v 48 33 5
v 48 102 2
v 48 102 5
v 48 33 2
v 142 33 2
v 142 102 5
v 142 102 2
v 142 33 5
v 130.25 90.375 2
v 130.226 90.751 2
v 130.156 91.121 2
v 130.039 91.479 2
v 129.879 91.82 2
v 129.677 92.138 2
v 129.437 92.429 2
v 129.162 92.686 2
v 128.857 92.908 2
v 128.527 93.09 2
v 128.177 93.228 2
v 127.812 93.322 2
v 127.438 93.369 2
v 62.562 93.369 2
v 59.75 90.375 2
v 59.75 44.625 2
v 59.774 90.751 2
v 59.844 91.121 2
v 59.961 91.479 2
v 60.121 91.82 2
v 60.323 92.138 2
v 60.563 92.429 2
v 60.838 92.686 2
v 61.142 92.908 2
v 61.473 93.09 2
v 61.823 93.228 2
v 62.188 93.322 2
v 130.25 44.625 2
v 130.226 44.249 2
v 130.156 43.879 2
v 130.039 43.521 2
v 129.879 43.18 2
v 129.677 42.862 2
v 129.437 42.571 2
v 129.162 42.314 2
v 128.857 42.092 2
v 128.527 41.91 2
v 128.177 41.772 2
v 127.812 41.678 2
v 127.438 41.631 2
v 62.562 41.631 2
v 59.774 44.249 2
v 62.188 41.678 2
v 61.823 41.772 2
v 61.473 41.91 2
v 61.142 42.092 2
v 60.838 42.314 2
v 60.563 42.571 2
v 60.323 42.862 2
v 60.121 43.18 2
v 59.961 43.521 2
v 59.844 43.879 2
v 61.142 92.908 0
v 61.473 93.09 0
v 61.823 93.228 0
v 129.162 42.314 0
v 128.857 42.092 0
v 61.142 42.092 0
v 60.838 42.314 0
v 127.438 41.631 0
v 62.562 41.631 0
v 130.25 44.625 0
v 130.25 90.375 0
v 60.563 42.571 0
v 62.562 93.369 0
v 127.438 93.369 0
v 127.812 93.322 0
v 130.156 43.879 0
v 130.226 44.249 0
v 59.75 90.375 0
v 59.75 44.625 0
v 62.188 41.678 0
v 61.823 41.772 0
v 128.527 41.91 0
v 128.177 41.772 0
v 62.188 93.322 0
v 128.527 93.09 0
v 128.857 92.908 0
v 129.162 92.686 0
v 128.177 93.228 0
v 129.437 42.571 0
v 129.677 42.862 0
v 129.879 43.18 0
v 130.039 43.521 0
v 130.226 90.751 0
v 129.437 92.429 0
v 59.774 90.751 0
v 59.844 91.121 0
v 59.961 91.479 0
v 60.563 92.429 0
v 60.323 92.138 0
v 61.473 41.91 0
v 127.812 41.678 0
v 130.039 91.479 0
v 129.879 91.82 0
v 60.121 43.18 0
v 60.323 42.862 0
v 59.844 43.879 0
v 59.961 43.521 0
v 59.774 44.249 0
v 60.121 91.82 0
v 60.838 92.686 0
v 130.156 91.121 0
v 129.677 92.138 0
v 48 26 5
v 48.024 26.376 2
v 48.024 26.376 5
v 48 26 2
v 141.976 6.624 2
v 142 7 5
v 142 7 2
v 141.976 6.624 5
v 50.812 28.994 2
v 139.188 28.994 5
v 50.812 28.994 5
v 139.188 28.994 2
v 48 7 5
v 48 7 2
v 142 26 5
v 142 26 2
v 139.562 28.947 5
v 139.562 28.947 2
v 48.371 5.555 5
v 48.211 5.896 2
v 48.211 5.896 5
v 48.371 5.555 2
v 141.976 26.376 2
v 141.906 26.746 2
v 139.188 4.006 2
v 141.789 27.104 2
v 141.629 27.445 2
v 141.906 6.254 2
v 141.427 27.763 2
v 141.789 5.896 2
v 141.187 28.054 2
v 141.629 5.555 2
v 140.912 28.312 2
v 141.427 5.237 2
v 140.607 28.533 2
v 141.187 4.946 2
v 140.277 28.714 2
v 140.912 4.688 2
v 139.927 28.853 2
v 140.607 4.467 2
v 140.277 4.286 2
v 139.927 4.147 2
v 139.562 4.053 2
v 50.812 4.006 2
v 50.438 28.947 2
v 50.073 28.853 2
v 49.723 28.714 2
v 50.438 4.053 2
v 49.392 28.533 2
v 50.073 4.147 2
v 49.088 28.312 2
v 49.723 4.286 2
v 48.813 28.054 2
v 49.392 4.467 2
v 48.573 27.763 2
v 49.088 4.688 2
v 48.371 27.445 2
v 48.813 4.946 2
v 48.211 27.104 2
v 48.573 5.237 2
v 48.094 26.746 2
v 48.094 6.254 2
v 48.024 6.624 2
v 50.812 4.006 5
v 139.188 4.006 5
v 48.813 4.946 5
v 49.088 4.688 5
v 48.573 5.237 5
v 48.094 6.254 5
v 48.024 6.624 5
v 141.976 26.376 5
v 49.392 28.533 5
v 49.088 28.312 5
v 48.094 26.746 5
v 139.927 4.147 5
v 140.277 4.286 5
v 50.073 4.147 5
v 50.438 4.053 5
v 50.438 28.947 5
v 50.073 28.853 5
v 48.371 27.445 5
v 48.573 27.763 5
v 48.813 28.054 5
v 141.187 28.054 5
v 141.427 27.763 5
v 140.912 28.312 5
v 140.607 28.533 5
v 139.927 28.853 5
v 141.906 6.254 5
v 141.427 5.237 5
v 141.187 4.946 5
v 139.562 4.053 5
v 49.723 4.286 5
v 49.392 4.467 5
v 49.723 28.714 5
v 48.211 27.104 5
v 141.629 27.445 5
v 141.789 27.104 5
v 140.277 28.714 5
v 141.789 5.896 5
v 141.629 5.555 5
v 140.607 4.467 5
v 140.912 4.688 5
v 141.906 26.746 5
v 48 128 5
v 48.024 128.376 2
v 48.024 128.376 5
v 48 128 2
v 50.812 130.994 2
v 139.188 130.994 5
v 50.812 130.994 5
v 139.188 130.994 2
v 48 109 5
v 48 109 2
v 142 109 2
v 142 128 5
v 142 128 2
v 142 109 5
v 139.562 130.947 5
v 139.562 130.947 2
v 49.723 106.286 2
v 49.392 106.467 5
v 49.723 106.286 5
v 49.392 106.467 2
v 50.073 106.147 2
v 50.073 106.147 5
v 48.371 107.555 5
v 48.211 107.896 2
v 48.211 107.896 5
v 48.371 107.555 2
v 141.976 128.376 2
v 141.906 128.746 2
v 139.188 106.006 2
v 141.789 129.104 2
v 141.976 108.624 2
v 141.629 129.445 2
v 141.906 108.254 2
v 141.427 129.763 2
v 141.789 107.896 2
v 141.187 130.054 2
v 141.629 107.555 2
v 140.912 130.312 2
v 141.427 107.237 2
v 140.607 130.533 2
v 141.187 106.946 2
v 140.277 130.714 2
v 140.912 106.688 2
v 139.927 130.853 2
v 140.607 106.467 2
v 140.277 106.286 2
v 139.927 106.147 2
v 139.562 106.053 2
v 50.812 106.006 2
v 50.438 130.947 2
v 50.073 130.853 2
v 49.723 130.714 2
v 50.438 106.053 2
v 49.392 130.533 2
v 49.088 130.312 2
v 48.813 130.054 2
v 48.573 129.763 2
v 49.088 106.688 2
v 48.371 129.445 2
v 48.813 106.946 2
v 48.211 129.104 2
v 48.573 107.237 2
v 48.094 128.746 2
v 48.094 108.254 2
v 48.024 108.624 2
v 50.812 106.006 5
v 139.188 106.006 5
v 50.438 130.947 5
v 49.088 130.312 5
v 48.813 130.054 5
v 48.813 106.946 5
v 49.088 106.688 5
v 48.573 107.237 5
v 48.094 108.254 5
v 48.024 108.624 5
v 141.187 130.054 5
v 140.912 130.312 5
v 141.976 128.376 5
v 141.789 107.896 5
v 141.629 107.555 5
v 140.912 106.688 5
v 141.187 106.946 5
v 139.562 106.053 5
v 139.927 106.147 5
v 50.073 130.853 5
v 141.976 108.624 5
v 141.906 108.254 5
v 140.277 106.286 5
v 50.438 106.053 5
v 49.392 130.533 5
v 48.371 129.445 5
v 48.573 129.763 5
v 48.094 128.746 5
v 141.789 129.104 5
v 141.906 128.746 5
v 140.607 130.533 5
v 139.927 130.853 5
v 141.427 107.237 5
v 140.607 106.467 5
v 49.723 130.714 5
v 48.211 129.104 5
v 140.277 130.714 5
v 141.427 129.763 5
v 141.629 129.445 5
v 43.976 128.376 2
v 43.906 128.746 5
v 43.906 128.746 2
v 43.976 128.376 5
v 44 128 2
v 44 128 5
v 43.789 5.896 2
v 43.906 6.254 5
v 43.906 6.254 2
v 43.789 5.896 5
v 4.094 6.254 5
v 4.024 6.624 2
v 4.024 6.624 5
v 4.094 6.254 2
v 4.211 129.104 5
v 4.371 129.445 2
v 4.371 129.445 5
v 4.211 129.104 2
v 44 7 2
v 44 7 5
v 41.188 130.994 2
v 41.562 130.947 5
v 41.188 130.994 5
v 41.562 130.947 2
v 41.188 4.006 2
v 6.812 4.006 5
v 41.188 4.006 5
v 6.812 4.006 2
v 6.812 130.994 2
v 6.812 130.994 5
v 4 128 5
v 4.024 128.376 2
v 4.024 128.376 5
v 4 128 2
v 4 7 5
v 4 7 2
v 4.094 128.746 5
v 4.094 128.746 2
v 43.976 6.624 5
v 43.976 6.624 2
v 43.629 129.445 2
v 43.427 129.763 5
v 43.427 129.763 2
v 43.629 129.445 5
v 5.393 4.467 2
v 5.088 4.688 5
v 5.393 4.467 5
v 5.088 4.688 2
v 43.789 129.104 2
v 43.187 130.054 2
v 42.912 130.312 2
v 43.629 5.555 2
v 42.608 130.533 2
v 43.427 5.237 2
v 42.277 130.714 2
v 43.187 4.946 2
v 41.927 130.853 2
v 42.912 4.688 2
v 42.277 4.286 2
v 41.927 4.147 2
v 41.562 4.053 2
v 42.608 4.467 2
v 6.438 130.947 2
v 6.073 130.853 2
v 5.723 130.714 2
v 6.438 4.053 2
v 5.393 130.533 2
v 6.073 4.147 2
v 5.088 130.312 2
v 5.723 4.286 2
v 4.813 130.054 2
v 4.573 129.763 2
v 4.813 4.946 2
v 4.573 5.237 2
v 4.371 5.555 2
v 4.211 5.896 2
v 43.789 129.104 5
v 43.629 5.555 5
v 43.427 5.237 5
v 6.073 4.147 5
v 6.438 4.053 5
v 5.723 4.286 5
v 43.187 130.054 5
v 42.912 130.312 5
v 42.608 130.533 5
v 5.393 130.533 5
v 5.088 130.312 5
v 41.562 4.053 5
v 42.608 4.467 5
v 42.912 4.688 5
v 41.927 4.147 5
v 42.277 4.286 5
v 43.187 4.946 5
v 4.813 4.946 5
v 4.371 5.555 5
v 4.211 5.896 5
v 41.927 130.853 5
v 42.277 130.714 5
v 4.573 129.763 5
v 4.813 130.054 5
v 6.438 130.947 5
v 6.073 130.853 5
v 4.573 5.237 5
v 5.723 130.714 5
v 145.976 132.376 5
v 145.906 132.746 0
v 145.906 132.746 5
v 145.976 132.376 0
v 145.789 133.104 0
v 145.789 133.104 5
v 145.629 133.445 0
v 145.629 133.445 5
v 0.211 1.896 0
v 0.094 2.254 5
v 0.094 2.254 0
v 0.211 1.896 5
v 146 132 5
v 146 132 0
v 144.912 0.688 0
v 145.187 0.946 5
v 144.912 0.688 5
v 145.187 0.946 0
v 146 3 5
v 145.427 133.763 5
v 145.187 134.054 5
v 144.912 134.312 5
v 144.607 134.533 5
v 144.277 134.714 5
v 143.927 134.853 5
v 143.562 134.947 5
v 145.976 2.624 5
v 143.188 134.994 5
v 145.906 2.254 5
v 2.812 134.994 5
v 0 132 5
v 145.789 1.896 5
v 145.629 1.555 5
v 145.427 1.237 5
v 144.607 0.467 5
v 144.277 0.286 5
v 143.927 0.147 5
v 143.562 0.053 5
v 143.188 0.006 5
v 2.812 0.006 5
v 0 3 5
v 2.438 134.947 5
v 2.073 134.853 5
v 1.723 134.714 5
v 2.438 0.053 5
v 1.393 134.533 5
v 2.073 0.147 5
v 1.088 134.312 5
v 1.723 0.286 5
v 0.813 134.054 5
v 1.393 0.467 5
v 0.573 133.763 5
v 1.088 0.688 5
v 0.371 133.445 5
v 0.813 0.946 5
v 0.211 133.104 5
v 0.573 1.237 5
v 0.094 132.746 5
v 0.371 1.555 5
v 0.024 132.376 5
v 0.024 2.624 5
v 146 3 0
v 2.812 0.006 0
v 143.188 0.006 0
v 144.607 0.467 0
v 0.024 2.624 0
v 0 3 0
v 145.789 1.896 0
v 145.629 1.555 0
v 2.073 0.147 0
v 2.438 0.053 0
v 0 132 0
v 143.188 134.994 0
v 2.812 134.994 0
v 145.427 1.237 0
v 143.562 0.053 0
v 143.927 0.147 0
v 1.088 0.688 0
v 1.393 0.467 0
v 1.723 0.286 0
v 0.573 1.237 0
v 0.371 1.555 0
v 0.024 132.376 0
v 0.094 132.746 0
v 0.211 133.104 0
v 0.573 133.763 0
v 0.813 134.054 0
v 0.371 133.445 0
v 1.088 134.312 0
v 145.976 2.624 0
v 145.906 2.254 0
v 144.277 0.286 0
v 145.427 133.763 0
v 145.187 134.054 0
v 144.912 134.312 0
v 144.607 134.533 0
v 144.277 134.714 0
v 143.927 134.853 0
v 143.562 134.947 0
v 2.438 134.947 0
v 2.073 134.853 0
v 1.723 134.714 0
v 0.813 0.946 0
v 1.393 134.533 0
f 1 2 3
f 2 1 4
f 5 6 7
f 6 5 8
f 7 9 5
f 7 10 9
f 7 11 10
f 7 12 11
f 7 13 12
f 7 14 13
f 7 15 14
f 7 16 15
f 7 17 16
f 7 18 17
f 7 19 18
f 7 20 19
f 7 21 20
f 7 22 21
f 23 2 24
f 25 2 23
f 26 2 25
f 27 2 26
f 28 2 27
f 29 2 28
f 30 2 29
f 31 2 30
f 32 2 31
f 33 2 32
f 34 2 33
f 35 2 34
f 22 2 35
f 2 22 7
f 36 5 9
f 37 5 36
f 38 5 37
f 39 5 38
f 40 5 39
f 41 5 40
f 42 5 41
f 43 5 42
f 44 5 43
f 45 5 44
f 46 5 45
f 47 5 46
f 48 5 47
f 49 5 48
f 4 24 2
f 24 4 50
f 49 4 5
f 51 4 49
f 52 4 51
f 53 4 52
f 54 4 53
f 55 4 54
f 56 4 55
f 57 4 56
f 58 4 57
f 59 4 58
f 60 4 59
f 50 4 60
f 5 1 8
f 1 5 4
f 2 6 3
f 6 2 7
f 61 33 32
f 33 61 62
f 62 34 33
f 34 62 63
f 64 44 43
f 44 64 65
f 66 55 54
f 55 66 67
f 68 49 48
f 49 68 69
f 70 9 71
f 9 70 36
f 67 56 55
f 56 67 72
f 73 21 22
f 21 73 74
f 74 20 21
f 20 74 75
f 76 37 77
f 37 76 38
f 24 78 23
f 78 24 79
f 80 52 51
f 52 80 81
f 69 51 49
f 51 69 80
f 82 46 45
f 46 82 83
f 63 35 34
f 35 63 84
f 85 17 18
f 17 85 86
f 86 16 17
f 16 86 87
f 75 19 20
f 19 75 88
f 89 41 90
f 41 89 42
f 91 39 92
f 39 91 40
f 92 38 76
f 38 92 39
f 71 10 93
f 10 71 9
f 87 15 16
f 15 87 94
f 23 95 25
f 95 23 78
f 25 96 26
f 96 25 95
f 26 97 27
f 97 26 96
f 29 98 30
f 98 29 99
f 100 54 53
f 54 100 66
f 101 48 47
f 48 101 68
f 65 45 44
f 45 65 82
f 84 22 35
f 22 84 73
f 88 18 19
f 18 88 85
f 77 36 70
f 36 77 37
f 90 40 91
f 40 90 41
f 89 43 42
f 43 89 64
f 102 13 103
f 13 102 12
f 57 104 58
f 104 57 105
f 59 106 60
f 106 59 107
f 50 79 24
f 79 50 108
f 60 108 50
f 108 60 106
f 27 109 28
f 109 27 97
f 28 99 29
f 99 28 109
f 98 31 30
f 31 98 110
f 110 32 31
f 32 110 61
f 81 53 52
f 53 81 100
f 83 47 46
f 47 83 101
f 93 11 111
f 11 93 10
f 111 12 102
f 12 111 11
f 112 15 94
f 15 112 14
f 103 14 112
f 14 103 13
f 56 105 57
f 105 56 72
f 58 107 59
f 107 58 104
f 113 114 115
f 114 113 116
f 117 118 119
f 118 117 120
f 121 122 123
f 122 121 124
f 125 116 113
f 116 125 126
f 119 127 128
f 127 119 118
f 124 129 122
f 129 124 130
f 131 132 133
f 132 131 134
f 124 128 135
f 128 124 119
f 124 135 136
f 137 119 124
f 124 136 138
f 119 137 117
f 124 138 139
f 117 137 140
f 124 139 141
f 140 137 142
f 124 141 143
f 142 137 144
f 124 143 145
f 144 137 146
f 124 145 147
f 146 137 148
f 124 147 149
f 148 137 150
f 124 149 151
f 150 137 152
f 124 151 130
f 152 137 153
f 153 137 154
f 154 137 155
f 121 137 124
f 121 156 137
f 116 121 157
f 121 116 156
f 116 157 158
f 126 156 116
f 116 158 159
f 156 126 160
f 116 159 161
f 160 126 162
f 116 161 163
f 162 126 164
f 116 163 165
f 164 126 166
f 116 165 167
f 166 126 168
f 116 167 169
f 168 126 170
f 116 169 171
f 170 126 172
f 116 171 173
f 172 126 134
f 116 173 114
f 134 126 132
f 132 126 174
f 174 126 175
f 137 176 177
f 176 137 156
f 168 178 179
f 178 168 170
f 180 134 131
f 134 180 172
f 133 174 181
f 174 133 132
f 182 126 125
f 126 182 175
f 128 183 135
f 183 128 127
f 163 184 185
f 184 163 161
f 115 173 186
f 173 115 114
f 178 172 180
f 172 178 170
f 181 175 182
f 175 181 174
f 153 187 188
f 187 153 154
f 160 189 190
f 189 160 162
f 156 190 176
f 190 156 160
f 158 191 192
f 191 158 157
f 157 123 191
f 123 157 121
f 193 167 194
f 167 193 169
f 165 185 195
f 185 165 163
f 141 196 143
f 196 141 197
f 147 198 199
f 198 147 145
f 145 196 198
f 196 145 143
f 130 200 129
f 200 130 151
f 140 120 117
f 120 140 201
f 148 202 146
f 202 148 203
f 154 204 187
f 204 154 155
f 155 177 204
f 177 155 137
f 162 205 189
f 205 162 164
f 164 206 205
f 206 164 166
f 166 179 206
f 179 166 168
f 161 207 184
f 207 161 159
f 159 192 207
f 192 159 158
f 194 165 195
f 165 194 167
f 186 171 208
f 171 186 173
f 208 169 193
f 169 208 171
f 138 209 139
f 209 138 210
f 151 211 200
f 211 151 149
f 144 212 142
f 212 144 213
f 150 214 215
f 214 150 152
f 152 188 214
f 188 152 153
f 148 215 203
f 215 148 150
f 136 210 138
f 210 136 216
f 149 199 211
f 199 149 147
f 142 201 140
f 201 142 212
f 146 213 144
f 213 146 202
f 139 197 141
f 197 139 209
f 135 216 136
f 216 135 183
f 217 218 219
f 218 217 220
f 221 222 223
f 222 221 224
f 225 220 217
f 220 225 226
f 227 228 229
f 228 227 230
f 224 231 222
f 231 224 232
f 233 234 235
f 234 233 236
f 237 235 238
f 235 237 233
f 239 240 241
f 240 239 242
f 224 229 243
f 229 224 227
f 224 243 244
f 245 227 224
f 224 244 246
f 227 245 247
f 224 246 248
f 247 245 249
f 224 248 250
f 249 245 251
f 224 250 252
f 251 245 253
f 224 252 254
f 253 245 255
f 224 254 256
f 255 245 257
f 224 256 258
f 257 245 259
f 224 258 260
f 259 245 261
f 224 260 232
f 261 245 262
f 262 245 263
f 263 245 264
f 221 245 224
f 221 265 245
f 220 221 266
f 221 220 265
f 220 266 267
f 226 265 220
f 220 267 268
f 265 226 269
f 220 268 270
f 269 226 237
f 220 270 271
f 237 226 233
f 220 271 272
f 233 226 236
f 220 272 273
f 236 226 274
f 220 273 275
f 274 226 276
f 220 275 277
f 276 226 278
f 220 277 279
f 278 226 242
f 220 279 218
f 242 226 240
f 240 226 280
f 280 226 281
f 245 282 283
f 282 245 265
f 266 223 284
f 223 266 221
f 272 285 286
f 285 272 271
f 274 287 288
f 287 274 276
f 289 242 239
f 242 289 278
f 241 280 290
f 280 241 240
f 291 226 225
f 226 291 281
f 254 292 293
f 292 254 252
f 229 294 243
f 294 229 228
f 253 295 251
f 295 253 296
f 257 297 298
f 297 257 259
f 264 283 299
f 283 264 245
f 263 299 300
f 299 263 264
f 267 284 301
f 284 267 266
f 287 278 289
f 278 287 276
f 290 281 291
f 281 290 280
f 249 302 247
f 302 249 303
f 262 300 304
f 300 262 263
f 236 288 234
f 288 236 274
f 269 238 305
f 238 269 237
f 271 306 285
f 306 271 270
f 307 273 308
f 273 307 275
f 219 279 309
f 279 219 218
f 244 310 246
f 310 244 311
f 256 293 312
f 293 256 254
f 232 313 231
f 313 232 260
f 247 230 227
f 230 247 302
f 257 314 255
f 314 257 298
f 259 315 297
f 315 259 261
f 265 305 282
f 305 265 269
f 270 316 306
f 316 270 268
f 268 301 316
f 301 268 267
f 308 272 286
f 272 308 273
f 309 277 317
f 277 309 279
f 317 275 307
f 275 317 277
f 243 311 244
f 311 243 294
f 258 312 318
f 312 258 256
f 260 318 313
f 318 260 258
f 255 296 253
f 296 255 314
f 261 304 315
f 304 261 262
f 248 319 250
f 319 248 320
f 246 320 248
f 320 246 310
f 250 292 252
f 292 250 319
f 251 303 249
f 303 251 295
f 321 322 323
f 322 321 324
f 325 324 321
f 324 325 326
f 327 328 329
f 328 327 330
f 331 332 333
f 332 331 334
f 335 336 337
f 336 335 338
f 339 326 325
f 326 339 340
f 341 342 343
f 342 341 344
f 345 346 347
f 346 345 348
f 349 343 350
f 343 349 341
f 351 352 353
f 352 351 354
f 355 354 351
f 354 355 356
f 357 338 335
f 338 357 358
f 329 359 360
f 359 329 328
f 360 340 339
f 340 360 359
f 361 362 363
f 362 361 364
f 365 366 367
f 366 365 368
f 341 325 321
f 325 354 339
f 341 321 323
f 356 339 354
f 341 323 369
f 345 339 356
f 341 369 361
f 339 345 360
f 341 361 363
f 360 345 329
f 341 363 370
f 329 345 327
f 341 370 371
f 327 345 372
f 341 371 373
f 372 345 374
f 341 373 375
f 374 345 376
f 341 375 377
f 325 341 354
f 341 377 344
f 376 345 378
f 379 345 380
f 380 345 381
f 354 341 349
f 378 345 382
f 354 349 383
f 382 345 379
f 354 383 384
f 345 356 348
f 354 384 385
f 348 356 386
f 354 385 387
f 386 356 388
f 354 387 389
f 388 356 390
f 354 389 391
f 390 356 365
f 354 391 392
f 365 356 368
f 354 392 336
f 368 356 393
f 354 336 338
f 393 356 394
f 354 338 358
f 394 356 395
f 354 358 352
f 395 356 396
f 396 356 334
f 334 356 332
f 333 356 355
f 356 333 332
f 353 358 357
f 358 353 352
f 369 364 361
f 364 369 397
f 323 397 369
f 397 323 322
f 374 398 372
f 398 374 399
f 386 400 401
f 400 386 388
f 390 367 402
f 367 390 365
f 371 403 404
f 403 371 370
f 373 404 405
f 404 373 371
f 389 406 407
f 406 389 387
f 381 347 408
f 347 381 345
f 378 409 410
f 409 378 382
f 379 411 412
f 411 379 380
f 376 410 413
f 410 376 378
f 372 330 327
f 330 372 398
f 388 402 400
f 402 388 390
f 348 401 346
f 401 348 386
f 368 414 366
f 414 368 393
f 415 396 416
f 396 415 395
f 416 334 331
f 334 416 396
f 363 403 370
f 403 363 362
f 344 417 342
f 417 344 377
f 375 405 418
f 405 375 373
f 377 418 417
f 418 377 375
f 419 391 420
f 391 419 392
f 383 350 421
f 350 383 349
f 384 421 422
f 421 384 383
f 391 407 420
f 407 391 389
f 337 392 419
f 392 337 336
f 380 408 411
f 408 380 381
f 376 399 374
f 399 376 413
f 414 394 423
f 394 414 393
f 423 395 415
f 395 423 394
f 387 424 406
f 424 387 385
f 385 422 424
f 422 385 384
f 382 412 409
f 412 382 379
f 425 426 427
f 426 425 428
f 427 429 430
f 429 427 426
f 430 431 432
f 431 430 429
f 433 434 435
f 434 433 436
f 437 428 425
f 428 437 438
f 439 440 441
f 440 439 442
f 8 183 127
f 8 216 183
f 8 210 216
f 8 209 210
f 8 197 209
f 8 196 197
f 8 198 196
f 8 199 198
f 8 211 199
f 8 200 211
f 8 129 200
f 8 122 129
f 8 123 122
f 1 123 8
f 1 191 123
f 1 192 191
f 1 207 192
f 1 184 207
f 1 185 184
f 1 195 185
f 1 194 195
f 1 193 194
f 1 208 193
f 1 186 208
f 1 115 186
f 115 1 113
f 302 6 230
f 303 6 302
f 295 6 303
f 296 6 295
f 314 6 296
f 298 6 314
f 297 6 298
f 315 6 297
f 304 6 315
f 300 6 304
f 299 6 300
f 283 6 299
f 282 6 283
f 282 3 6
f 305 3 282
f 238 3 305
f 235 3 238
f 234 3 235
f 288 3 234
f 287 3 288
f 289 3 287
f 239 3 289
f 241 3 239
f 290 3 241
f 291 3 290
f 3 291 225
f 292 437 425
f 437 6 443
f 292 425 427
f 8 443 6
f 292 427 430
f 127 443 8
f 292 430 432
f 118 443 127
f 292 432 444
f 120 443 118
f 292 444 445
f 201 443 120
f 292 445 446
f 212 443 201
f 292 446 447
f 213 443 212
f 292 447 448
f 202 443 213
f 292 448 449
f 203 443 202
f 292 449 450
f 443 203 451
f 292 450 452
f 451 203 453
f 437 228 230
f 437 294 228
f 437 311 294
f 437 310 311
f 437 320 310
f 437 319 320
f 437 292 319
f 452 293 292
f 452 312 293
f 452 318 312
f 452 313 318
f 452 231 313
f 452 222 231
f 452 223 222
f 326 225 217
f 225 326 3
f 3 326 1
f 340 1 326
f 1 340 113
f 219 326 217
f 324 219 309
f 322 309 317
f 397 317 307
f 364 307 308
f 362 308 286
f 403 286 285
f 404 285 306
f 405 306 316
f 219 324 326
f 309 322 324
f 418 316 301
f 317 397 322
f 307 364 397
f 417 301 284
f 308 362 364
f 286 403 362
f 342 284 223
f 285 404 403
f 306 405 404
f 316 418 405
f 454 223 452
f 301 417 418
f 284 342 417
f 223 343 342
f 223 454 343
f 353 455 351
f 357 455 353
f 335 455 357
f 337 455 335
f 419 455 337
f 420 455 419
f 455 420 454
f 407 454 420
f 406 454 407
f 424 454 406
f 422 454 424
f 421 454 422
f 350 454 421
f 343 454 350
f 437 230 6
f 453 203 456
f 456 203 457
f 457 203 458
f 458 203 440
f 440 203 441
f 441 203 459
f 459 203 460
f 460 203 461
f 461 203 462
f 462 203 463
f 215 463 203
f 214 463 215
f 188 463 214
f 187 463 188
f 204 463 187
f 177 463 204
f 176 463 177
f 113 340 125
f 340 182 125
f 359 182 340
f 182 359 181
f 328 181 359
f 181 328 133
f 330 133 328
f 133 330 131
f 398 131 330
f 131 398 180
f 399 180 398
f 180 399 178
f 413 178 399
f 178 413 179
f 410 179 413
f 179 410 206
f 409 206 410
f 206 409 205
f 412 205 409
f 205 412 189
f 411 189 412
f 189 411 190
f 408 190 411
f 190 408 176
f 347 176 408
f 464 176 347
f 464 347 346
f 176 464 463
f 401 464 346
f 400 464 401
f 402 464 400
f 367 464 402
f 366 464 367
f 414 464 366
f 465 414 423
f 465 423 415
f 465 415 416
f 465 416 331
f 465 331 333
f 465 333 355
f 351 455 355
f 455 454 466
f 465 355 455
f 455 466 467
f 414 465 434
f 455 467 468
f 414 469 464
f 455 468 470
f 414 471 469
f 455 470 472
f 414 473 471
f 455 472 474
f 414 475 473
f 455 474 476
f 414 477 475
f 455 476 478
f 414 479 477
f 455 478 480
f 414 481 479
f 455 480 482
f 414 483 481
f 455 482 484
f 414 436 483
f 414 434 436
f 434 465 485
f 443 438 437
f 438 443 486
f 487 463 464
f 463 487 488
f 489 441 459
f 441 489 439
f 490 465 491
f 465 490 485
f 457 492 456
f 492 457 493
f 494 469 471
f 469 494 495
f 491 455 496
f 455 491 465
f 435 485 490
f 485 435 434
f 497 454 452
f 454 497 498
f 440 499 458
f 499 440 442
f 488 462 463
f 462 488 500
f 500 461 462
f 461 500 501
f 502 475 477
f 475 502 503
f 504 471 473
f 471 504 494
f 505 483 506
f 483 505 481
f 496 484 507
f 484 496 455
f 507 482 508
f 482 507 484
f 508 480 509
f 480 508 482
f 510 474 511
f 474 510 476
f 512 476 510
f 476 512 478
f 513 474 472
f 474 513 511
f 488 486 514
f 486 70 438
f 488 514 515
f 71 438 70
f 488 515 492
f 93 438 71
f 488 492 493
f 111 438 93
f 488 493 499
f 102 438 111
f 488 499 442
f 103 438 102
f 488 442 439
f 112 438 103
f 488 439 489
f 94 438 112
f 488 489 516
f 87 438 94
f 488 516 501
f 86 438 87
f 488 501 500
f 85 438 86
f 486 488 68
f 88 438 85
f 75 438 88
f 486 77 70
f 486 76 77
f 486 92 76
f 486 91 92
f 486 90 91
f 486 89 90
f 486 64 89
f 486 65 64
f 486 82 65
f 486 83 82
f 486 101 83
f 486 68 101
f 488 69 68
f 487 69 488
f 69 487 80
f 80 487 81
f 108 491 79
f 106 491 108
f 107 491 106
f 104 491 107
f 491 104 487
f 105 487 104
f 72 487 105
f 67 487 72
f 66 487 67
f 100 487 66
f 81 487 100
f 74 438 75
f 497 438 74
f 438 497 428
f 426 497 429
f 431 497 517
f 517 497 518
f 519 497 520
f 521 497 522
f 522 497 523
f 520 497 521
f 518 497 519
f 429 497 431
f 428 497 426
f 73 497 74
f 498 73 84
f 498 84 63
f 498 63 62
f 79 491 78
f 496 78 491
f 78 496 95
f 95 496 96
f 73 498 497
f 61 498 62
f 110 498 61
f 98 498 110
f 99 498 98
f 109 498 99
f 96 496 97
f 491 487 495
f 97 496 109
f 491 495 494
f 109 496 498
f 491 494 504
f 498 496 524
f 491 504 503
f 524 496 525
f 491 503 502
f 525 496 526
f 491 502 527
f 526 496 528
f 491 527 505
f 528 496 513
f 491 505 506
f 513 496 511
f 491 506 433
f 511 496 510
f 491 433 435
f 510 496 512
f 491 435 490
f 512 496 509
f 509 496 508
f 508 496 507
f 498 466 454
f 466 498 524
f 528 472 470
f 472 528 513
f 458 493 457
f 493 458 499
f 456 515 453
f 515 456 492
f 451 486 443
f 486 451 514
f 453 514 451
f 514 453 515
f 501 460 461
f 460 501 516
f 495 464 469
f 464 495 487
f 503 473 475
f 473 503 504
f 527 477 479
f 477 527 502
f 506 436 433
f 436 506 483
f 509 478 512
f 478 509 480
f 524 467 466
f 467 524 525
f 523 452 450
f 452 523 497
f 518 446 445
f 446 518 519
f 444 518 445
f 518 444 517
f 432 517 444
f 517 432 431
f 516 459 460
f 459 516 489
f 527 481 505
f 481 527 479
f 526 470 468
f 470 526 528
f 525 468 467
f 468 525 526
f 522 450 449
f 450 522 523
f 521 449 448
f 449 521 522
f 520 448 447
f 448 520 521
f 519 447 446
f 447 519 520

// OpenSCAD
// file: ../../lib/flat_rounded_cube.scad
$bleed = 1;
$rounding = 3;

min_cylinder_height = 1;

module flat_rounded_cube(size) {
  width = size[0] - $rounding * 2;
  length = size[1] - $rounding * 2;

  // Only 1 count of min_cynlinder_height not 2;
  // cylinder does not extend the bottom because it's flush
  height = size[2] - min_cylinder_height; 

  minkowski() {
    translate([$rounding, $rounding, 0]) {
      cube([width, length, height]);
    }
    cylinder(min_cylinder_height, $rounding, $rounding);
  }
}
// main file
echo(version=version());

include <../../lib/flat_rounded_cube.scad>

// Config
$wall_thickness = 4;
$bleed = 1;
$fn = 50;
floor_height = 2;
cutout_depth = 3;

// Attributes
card_width = 92;
card_length = 67;
card_gap = 1;

resource_width = 40;

health_height = 25;

// Derived Attributes
height = floor_height + cutout_depth;

player_cutout_size = [
  card_width + card_gap*2,
  card_length + card_gap*2,
  cutout_depth + $bleed
];

resource_cutout_size = [
  resource_width,
  player_cutout_size[1] + health_height*2 + $wall_thickness*2,
  cutout_depth + $bleed
];

health_cutout_size = [
  player_cutout_size[0],
  health_height,
  cutout_depth + $bleed
];

dashboard_size = [
  resource_width + player_cutout_size[0] + $wall_thickness * 3,
  resource_cutout_size[1] + $wall_thickness*2, 
  height
];

hole_size = [
  player_cutout_size[0] * 0.75,
  player_cutout_size[1] * 0.75,
  floor_height + $bleed*2
];

hole_offset = [
  (player_cutout_size[0] - hole_size[0]) / 2,
  (player_cutout_size[1] - hole_size[1]) / 2,
  -(floor_height+$bleed)
];

// Model
difference() {
  // Draw starting dashbaord
  flat_rounded_cube(dashboard_size);
  // Inset for outter walls
  translate([$wall_thickness, $wall_thickness, floor_height]) {
    // Cutout left resource tray
    flat_rounded_cube(resource_cutout_size);
    translate([resource_cutout_size[0] + $wall_thickness, 0, 0]) {
      // Cutout bottom health tray
      flat_rounded_cube(health_cutout_size);
      translate([0, health_cutout_size[1] + $wall_thickness, 0]) {
        // Cutout player card tray
        cube(player_cutout_size);
        translate(hole_offset) {
          // Cutout player card hole
          flat_rounded_cube(hole_size);
        }
      }
      translate([0, health_cutout_size[1] + player_cutout_size[1] + $wall_thickness*2, 0]) {
        // Cutout top sanity tray
        flat_rounded_cube(health_cutout_size);
      }
    }
  }
}
